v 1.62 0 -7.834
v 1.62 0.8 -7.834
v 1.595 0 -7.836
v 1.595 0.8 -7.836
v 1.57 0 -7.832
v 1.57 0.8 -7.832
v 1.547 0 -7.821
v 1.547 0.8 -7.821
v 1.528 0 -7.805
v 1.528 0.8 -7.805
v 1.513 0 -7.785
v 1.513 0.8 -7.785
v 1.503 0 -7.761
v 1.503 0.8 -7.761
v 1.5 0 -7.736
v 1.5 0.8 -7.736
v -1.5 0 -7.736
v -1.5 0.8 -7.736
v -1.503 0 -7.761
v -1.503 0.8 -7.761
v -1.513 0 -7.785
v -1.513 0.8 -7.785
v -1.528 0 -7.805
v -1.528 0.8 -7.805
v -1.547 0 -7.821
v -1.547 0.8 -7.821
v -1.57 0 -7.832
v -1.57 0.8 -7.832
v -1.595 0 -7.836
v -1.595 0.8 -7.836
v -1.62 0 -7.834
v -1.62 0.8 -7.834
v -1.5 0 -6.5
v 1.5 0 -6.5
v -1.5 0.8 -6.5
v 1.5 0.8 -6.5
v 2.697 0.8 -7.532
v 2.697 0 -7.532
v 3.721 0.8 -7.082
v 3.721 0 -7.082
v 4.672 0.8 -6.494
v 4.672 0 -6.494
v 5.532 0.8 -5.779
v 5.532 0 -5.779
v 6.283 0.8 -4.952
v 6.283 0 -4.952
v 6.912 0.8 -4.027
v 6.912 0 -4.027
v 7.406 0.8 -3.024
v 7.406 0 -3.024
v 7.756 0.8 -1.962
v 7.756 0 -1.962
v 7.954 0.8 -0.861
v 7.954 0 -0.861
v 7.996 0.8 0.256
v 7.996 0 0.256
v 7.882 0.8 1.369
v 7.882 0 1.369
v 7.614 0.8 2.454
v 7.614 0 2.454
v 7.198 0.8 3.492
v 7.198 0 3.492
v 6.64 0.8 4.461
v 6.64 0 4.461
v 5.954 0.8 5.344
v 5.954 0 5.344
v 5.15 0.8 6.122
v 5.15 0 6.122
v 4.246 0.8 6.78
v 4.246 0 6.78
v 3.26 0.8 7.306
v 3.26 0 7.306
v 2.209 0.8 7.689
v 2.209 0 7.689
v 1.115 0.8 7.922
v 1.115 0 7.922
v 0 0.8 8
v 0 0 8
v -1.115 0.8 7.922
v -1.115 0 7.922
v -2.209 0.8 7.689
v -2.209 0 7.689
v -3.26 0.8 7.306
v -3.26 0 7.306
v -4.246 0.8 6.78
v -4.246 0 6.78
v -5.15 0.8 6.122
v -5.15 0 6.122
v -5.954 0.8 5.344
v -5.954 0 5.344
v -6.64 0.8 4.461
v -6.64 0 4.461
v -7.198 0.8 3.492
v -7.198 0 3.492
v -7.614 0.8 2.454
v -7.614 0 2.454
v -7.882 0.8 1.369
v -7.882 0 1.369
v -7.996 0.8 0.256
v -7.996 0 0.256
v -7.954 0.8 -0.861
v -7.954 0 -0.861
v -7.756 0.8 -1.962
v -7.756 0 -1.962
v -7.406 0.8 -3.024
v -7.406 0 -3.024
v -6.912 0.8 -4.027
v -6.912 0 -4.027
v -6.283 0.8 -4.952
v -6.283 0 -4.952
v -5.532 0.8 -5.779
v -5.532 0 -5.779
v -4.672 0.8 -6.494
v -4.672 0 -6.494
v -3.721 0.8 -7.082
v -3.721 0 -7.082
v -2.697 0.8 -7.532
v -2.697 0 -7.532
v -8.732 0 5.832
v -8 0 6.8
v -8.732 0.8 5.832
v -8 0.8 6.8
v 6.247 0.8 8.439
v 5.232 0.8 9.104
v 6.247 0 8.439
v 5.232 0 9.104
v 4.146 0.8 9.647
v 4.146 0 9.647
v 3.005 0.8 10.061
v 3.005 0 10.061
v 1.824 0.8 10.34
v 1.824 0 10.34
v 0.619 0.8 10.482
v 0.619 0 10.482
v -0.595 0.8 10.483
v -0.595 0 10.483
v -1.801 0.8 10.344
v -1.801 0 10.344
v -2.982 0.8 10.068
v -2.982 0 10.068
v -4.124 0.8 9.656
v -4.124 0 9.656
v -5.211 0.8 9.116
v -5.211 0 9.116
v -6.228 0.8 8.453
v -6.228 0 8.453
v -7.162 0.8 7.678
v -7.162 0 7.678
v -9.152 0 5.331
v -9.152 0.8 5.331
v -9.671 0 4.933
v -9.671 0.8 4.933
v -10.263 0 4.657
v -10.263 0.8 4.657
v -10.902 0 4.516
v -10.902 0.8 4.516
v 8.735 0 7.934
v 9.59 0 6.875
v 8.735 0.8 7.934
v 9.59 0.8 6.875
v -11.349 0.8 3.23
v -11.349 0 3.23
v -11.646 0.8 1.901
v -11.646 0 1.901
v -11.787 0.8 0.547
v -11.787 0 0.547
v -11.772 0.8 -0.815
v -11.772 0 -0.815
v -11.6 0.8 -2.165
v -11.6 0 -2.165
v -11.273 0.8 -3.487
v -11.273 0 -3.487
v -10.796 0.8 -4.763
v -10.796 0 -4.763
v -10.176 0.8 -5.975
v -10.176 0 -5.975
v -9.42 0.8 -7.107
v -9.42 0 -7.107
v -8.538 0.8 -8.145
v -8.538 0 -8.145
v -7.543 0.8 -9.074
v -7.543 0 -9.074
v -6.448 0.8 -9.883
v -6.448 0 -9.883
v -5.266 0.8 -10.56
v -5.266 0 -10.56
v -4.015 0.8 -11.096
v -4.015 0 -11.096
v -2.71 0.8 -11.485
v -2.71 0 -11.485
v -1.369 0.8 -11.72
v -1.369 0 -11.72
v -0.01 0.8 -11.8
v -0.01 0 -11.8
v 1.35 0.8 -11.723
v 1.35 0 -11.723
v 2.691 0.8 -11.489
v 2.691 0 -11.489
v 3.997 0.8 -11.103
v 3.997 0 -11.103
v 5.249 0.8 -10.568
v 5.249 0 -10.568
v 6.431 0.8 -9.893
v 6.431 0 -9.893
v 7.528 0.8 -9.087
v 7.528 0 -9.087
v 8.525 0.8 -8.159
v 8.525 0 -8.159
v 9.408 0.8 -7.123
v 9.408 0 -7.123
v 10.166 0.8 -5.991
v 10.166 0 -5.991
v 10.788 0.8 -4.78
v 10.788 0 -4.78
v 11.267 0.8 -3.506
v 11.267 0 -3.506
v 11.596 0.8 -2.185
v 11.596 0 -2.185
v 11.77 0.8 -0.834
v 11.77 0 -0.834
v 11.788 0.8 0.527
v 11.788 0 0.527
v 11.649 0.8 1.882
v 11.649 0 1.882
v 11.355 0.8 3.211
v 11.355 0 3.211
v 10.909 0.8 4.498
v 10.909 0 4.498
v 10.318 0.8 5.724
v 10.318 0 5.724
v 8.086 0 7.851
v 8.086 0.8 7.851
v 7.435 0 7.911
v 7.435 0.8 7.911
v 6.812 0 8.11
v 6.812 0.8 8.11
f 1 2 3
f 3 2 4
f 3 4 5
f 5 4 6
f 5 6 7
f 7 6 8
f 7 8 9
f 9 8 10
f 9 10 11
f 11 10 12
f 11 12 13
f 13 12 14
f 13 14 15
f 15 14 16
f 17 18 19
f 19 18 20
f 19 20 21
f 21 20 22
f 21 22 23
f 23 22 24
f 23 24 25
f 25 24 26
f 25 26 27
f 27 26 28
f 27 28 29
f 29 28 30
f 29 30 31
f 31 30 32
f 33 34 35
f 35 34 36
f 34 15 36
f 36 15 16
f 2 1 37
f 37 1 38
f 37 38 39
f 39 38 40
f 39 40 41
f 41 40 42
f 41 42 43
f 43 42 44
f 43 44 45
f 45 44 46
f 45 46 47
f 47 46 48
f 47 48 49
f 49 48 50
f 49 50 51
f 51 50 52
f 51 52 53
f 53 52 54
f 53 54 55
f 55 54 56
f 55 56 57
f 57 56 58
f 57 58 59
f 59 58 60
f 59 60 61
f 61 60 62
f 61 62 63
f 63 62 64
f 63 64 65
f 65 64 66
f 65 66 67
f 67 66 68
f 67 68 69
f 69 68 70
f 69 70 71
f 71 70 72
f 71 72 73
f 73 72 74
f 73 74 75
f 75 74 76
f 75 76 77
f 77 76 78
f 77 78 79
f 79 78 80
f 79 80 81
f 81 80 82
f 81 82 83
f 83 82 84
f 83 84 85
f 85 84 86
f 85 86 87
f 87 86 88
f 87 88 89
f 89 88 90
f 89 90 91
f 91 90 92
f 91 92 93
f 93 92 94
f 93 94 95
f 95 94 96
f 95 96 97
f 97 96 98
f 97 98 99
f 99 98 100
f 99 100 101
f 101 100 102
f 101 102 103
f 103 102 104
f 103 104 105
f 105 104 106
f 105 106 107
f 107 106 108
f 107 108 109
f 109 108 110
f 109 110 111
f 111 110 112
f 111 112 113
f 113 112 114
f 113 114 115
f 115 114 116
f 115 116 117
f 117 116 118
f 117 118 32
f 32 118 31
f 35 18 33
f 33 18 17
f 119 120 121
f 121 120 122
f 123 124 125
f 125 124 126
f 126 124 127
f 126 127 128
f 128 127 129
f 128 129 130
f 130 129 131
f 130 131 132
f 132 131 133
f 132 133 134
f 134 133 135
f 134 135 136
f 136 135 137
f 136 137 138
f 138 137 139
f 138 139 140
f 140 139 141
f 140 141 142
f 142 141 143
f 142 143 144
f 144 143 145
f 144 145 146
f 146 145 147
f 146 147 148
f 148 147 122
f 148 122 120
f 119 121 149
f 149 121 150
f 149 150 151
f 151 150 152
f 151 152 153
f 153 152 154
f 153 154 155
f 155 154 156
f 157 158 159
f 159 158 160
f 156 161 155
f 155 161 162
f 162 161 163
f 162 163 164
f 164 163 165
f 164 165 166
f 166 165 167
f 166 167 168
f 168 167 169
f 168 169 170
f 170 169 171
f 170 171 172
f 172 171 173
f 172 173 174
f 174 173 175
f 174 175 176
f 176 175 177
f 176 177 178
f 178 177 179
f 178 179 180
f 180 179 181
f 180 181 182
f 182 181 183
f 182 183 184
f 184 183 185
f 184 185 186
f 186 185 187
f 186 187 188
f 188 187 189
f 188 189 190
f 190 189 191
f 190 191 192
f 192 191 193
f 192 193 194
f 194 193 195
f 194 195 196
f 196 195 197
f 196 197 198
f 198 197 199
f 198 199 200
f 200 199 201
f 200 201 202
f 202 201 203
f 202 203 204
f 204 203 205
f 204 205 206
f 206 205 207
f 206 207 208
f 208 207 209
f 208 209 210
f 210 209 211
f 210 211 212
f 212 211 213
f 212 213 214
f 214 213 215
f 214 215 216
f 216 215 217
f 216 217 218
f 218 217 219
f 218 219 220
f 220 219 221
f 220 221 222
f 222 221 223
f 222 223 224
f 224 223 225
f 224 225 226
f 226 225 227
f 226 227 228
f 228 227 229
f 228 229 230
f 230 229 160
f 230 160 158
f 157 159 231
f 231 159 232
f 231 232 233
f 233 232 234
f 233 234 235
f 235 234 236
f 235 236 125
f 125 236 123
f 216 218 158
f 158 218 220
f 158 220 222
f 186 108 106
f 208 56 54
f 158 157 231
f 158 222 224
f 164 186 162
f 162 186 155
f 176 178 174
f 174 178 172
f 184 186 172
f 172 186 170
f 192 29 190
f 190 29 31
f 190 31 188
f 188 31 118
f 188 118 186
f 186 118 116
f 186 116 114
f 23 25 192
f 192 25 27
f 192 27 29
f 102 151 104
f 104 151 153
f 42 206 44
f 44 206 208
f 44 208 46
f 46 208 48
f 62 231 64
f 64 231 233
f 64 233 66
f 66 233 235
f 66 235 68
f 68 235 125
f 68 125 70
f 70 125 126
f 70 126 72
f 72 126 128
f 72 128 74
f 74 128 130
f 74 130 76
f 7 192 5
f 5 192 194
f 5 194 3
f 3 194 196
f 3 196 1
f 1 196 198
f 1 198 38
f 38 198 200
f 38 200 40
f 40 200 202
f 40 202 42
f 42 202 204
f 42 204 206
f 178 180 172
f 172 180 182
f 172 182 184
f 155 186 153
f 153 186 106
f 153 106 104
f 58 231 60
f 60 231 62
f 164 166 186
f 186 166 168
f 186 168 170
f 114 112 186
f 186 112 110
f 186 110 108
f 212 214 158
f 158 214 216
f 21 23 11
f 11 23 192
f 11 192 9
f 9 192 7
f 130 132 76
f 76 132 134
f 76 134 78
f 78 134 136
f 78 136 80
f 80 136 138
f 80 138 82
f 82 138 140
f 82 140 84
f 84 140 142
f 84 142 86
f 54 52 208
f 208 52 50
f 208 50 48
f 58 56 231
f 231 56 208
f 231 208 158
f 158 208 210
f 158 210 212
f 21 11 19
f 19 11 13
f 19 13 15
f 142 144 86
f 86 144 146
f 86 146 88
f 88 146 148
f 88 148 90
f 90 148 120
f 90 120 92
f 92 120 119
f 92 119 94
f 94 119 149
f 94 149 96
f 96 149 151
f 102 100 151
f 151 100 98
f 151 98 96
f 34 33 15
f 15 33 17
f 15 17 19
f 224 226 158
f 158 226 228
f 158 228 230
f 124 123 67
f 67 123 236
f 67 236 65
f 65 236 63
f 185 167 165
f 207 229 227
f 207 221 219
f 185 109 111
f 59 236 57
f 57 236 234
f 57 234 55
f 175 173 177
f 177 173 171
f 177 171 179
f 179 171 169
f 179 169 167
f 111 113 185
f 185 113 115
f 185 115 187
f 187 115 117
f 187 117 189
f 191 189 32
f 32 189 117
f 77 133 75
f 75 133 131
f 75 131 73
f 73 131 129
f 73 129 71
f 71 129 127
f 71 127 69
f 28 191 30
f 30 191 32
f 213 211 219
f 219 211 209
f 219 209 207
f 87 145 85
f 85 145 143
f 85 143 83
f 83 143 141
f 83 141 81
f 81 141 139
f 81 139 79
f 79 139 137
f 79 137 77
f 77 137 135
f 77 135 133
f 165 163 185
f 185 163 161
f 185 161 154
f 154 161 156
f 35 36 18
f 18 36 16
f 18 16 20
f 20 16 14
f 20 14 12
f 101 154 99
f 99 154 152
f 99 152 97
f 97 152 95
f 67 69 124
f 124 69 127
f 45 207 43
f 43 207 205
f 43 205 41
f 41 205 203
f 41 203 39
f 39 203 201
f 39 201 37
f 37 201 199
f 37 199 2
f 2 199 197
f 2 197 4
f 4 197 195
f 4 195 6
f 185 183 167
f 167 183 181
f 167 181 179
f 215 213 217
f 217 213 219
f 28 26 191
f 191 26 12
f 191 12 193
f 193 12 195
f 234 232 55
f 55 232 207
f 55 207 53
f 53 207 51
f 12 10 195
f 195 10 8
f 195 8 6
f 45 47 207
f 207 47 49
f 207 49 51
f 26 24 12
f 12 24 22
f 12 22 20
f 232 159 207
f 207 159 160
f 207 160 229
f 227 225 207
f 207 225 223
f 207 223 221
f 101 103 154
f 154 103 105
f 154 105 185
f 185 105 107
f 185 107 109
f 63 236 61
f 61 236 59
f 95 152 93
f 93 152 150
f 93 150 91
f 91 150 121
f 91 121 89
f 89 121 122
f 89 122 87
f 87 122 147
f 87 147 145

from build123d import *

# Parameters (mm, degrees)
BOSS_EXTRUDE1_DEPTH = 0.8
FILLET1_R           = 0.1


with BuildPart() as part:
    # Sketch1 → Boss-Extrude1 (new body)
    with BuildSketch(Plane(origin=(0, 0, 0), x_dir=(1, 0, 0), z_dir=(0, 1, 0))):
        with BuildLine():
            ThreePointArc((8.734573904, -7.933928328), (2.023691137, 11.625174157), (-10.901778484, -4.515664502))
            ThreePointArc((-10.901778484, -4.515664502), (-9.670610732, -4.932925102), (-8.73153967, -5.831827757))
            ThreePointArc((-8.73153967, -5.831827757), (-1.800742113, -10.344434631), (6.247243618, -8.439309639))
            ThreePointArc((6.247243618, -8.439309639), (7.434829013, -7.910611831), (8.734573904, -7.933928328))
        make_face()
        with BuildLine():
            Line((-1.5, 6.5), (1.5, 6.5))
            Line((1.5, 6.5), (1.5, 7.858116823))
            ThreePointArc((1.5, 7.858116823), (0, -8), (-1.5, 7.858116823))
            Line((-1.5, 7.858116823), (-1.5, 6.5))
        make_face(mode=Mode.SUBTRACT)
    extrude(amount=BOSS_EXTRUDE1_DEPTH)

    # Fillet1
    fillet1_edges = [part.edges().sort_by_distance(p)[0] for p in [
        (-1.5, 0.4, -7.858116823),
        (1.5, 0.4, -7.858116823),
    ]]
    fillet(fillet1_edges, radius=FILLET1_R)


solid = part.part
